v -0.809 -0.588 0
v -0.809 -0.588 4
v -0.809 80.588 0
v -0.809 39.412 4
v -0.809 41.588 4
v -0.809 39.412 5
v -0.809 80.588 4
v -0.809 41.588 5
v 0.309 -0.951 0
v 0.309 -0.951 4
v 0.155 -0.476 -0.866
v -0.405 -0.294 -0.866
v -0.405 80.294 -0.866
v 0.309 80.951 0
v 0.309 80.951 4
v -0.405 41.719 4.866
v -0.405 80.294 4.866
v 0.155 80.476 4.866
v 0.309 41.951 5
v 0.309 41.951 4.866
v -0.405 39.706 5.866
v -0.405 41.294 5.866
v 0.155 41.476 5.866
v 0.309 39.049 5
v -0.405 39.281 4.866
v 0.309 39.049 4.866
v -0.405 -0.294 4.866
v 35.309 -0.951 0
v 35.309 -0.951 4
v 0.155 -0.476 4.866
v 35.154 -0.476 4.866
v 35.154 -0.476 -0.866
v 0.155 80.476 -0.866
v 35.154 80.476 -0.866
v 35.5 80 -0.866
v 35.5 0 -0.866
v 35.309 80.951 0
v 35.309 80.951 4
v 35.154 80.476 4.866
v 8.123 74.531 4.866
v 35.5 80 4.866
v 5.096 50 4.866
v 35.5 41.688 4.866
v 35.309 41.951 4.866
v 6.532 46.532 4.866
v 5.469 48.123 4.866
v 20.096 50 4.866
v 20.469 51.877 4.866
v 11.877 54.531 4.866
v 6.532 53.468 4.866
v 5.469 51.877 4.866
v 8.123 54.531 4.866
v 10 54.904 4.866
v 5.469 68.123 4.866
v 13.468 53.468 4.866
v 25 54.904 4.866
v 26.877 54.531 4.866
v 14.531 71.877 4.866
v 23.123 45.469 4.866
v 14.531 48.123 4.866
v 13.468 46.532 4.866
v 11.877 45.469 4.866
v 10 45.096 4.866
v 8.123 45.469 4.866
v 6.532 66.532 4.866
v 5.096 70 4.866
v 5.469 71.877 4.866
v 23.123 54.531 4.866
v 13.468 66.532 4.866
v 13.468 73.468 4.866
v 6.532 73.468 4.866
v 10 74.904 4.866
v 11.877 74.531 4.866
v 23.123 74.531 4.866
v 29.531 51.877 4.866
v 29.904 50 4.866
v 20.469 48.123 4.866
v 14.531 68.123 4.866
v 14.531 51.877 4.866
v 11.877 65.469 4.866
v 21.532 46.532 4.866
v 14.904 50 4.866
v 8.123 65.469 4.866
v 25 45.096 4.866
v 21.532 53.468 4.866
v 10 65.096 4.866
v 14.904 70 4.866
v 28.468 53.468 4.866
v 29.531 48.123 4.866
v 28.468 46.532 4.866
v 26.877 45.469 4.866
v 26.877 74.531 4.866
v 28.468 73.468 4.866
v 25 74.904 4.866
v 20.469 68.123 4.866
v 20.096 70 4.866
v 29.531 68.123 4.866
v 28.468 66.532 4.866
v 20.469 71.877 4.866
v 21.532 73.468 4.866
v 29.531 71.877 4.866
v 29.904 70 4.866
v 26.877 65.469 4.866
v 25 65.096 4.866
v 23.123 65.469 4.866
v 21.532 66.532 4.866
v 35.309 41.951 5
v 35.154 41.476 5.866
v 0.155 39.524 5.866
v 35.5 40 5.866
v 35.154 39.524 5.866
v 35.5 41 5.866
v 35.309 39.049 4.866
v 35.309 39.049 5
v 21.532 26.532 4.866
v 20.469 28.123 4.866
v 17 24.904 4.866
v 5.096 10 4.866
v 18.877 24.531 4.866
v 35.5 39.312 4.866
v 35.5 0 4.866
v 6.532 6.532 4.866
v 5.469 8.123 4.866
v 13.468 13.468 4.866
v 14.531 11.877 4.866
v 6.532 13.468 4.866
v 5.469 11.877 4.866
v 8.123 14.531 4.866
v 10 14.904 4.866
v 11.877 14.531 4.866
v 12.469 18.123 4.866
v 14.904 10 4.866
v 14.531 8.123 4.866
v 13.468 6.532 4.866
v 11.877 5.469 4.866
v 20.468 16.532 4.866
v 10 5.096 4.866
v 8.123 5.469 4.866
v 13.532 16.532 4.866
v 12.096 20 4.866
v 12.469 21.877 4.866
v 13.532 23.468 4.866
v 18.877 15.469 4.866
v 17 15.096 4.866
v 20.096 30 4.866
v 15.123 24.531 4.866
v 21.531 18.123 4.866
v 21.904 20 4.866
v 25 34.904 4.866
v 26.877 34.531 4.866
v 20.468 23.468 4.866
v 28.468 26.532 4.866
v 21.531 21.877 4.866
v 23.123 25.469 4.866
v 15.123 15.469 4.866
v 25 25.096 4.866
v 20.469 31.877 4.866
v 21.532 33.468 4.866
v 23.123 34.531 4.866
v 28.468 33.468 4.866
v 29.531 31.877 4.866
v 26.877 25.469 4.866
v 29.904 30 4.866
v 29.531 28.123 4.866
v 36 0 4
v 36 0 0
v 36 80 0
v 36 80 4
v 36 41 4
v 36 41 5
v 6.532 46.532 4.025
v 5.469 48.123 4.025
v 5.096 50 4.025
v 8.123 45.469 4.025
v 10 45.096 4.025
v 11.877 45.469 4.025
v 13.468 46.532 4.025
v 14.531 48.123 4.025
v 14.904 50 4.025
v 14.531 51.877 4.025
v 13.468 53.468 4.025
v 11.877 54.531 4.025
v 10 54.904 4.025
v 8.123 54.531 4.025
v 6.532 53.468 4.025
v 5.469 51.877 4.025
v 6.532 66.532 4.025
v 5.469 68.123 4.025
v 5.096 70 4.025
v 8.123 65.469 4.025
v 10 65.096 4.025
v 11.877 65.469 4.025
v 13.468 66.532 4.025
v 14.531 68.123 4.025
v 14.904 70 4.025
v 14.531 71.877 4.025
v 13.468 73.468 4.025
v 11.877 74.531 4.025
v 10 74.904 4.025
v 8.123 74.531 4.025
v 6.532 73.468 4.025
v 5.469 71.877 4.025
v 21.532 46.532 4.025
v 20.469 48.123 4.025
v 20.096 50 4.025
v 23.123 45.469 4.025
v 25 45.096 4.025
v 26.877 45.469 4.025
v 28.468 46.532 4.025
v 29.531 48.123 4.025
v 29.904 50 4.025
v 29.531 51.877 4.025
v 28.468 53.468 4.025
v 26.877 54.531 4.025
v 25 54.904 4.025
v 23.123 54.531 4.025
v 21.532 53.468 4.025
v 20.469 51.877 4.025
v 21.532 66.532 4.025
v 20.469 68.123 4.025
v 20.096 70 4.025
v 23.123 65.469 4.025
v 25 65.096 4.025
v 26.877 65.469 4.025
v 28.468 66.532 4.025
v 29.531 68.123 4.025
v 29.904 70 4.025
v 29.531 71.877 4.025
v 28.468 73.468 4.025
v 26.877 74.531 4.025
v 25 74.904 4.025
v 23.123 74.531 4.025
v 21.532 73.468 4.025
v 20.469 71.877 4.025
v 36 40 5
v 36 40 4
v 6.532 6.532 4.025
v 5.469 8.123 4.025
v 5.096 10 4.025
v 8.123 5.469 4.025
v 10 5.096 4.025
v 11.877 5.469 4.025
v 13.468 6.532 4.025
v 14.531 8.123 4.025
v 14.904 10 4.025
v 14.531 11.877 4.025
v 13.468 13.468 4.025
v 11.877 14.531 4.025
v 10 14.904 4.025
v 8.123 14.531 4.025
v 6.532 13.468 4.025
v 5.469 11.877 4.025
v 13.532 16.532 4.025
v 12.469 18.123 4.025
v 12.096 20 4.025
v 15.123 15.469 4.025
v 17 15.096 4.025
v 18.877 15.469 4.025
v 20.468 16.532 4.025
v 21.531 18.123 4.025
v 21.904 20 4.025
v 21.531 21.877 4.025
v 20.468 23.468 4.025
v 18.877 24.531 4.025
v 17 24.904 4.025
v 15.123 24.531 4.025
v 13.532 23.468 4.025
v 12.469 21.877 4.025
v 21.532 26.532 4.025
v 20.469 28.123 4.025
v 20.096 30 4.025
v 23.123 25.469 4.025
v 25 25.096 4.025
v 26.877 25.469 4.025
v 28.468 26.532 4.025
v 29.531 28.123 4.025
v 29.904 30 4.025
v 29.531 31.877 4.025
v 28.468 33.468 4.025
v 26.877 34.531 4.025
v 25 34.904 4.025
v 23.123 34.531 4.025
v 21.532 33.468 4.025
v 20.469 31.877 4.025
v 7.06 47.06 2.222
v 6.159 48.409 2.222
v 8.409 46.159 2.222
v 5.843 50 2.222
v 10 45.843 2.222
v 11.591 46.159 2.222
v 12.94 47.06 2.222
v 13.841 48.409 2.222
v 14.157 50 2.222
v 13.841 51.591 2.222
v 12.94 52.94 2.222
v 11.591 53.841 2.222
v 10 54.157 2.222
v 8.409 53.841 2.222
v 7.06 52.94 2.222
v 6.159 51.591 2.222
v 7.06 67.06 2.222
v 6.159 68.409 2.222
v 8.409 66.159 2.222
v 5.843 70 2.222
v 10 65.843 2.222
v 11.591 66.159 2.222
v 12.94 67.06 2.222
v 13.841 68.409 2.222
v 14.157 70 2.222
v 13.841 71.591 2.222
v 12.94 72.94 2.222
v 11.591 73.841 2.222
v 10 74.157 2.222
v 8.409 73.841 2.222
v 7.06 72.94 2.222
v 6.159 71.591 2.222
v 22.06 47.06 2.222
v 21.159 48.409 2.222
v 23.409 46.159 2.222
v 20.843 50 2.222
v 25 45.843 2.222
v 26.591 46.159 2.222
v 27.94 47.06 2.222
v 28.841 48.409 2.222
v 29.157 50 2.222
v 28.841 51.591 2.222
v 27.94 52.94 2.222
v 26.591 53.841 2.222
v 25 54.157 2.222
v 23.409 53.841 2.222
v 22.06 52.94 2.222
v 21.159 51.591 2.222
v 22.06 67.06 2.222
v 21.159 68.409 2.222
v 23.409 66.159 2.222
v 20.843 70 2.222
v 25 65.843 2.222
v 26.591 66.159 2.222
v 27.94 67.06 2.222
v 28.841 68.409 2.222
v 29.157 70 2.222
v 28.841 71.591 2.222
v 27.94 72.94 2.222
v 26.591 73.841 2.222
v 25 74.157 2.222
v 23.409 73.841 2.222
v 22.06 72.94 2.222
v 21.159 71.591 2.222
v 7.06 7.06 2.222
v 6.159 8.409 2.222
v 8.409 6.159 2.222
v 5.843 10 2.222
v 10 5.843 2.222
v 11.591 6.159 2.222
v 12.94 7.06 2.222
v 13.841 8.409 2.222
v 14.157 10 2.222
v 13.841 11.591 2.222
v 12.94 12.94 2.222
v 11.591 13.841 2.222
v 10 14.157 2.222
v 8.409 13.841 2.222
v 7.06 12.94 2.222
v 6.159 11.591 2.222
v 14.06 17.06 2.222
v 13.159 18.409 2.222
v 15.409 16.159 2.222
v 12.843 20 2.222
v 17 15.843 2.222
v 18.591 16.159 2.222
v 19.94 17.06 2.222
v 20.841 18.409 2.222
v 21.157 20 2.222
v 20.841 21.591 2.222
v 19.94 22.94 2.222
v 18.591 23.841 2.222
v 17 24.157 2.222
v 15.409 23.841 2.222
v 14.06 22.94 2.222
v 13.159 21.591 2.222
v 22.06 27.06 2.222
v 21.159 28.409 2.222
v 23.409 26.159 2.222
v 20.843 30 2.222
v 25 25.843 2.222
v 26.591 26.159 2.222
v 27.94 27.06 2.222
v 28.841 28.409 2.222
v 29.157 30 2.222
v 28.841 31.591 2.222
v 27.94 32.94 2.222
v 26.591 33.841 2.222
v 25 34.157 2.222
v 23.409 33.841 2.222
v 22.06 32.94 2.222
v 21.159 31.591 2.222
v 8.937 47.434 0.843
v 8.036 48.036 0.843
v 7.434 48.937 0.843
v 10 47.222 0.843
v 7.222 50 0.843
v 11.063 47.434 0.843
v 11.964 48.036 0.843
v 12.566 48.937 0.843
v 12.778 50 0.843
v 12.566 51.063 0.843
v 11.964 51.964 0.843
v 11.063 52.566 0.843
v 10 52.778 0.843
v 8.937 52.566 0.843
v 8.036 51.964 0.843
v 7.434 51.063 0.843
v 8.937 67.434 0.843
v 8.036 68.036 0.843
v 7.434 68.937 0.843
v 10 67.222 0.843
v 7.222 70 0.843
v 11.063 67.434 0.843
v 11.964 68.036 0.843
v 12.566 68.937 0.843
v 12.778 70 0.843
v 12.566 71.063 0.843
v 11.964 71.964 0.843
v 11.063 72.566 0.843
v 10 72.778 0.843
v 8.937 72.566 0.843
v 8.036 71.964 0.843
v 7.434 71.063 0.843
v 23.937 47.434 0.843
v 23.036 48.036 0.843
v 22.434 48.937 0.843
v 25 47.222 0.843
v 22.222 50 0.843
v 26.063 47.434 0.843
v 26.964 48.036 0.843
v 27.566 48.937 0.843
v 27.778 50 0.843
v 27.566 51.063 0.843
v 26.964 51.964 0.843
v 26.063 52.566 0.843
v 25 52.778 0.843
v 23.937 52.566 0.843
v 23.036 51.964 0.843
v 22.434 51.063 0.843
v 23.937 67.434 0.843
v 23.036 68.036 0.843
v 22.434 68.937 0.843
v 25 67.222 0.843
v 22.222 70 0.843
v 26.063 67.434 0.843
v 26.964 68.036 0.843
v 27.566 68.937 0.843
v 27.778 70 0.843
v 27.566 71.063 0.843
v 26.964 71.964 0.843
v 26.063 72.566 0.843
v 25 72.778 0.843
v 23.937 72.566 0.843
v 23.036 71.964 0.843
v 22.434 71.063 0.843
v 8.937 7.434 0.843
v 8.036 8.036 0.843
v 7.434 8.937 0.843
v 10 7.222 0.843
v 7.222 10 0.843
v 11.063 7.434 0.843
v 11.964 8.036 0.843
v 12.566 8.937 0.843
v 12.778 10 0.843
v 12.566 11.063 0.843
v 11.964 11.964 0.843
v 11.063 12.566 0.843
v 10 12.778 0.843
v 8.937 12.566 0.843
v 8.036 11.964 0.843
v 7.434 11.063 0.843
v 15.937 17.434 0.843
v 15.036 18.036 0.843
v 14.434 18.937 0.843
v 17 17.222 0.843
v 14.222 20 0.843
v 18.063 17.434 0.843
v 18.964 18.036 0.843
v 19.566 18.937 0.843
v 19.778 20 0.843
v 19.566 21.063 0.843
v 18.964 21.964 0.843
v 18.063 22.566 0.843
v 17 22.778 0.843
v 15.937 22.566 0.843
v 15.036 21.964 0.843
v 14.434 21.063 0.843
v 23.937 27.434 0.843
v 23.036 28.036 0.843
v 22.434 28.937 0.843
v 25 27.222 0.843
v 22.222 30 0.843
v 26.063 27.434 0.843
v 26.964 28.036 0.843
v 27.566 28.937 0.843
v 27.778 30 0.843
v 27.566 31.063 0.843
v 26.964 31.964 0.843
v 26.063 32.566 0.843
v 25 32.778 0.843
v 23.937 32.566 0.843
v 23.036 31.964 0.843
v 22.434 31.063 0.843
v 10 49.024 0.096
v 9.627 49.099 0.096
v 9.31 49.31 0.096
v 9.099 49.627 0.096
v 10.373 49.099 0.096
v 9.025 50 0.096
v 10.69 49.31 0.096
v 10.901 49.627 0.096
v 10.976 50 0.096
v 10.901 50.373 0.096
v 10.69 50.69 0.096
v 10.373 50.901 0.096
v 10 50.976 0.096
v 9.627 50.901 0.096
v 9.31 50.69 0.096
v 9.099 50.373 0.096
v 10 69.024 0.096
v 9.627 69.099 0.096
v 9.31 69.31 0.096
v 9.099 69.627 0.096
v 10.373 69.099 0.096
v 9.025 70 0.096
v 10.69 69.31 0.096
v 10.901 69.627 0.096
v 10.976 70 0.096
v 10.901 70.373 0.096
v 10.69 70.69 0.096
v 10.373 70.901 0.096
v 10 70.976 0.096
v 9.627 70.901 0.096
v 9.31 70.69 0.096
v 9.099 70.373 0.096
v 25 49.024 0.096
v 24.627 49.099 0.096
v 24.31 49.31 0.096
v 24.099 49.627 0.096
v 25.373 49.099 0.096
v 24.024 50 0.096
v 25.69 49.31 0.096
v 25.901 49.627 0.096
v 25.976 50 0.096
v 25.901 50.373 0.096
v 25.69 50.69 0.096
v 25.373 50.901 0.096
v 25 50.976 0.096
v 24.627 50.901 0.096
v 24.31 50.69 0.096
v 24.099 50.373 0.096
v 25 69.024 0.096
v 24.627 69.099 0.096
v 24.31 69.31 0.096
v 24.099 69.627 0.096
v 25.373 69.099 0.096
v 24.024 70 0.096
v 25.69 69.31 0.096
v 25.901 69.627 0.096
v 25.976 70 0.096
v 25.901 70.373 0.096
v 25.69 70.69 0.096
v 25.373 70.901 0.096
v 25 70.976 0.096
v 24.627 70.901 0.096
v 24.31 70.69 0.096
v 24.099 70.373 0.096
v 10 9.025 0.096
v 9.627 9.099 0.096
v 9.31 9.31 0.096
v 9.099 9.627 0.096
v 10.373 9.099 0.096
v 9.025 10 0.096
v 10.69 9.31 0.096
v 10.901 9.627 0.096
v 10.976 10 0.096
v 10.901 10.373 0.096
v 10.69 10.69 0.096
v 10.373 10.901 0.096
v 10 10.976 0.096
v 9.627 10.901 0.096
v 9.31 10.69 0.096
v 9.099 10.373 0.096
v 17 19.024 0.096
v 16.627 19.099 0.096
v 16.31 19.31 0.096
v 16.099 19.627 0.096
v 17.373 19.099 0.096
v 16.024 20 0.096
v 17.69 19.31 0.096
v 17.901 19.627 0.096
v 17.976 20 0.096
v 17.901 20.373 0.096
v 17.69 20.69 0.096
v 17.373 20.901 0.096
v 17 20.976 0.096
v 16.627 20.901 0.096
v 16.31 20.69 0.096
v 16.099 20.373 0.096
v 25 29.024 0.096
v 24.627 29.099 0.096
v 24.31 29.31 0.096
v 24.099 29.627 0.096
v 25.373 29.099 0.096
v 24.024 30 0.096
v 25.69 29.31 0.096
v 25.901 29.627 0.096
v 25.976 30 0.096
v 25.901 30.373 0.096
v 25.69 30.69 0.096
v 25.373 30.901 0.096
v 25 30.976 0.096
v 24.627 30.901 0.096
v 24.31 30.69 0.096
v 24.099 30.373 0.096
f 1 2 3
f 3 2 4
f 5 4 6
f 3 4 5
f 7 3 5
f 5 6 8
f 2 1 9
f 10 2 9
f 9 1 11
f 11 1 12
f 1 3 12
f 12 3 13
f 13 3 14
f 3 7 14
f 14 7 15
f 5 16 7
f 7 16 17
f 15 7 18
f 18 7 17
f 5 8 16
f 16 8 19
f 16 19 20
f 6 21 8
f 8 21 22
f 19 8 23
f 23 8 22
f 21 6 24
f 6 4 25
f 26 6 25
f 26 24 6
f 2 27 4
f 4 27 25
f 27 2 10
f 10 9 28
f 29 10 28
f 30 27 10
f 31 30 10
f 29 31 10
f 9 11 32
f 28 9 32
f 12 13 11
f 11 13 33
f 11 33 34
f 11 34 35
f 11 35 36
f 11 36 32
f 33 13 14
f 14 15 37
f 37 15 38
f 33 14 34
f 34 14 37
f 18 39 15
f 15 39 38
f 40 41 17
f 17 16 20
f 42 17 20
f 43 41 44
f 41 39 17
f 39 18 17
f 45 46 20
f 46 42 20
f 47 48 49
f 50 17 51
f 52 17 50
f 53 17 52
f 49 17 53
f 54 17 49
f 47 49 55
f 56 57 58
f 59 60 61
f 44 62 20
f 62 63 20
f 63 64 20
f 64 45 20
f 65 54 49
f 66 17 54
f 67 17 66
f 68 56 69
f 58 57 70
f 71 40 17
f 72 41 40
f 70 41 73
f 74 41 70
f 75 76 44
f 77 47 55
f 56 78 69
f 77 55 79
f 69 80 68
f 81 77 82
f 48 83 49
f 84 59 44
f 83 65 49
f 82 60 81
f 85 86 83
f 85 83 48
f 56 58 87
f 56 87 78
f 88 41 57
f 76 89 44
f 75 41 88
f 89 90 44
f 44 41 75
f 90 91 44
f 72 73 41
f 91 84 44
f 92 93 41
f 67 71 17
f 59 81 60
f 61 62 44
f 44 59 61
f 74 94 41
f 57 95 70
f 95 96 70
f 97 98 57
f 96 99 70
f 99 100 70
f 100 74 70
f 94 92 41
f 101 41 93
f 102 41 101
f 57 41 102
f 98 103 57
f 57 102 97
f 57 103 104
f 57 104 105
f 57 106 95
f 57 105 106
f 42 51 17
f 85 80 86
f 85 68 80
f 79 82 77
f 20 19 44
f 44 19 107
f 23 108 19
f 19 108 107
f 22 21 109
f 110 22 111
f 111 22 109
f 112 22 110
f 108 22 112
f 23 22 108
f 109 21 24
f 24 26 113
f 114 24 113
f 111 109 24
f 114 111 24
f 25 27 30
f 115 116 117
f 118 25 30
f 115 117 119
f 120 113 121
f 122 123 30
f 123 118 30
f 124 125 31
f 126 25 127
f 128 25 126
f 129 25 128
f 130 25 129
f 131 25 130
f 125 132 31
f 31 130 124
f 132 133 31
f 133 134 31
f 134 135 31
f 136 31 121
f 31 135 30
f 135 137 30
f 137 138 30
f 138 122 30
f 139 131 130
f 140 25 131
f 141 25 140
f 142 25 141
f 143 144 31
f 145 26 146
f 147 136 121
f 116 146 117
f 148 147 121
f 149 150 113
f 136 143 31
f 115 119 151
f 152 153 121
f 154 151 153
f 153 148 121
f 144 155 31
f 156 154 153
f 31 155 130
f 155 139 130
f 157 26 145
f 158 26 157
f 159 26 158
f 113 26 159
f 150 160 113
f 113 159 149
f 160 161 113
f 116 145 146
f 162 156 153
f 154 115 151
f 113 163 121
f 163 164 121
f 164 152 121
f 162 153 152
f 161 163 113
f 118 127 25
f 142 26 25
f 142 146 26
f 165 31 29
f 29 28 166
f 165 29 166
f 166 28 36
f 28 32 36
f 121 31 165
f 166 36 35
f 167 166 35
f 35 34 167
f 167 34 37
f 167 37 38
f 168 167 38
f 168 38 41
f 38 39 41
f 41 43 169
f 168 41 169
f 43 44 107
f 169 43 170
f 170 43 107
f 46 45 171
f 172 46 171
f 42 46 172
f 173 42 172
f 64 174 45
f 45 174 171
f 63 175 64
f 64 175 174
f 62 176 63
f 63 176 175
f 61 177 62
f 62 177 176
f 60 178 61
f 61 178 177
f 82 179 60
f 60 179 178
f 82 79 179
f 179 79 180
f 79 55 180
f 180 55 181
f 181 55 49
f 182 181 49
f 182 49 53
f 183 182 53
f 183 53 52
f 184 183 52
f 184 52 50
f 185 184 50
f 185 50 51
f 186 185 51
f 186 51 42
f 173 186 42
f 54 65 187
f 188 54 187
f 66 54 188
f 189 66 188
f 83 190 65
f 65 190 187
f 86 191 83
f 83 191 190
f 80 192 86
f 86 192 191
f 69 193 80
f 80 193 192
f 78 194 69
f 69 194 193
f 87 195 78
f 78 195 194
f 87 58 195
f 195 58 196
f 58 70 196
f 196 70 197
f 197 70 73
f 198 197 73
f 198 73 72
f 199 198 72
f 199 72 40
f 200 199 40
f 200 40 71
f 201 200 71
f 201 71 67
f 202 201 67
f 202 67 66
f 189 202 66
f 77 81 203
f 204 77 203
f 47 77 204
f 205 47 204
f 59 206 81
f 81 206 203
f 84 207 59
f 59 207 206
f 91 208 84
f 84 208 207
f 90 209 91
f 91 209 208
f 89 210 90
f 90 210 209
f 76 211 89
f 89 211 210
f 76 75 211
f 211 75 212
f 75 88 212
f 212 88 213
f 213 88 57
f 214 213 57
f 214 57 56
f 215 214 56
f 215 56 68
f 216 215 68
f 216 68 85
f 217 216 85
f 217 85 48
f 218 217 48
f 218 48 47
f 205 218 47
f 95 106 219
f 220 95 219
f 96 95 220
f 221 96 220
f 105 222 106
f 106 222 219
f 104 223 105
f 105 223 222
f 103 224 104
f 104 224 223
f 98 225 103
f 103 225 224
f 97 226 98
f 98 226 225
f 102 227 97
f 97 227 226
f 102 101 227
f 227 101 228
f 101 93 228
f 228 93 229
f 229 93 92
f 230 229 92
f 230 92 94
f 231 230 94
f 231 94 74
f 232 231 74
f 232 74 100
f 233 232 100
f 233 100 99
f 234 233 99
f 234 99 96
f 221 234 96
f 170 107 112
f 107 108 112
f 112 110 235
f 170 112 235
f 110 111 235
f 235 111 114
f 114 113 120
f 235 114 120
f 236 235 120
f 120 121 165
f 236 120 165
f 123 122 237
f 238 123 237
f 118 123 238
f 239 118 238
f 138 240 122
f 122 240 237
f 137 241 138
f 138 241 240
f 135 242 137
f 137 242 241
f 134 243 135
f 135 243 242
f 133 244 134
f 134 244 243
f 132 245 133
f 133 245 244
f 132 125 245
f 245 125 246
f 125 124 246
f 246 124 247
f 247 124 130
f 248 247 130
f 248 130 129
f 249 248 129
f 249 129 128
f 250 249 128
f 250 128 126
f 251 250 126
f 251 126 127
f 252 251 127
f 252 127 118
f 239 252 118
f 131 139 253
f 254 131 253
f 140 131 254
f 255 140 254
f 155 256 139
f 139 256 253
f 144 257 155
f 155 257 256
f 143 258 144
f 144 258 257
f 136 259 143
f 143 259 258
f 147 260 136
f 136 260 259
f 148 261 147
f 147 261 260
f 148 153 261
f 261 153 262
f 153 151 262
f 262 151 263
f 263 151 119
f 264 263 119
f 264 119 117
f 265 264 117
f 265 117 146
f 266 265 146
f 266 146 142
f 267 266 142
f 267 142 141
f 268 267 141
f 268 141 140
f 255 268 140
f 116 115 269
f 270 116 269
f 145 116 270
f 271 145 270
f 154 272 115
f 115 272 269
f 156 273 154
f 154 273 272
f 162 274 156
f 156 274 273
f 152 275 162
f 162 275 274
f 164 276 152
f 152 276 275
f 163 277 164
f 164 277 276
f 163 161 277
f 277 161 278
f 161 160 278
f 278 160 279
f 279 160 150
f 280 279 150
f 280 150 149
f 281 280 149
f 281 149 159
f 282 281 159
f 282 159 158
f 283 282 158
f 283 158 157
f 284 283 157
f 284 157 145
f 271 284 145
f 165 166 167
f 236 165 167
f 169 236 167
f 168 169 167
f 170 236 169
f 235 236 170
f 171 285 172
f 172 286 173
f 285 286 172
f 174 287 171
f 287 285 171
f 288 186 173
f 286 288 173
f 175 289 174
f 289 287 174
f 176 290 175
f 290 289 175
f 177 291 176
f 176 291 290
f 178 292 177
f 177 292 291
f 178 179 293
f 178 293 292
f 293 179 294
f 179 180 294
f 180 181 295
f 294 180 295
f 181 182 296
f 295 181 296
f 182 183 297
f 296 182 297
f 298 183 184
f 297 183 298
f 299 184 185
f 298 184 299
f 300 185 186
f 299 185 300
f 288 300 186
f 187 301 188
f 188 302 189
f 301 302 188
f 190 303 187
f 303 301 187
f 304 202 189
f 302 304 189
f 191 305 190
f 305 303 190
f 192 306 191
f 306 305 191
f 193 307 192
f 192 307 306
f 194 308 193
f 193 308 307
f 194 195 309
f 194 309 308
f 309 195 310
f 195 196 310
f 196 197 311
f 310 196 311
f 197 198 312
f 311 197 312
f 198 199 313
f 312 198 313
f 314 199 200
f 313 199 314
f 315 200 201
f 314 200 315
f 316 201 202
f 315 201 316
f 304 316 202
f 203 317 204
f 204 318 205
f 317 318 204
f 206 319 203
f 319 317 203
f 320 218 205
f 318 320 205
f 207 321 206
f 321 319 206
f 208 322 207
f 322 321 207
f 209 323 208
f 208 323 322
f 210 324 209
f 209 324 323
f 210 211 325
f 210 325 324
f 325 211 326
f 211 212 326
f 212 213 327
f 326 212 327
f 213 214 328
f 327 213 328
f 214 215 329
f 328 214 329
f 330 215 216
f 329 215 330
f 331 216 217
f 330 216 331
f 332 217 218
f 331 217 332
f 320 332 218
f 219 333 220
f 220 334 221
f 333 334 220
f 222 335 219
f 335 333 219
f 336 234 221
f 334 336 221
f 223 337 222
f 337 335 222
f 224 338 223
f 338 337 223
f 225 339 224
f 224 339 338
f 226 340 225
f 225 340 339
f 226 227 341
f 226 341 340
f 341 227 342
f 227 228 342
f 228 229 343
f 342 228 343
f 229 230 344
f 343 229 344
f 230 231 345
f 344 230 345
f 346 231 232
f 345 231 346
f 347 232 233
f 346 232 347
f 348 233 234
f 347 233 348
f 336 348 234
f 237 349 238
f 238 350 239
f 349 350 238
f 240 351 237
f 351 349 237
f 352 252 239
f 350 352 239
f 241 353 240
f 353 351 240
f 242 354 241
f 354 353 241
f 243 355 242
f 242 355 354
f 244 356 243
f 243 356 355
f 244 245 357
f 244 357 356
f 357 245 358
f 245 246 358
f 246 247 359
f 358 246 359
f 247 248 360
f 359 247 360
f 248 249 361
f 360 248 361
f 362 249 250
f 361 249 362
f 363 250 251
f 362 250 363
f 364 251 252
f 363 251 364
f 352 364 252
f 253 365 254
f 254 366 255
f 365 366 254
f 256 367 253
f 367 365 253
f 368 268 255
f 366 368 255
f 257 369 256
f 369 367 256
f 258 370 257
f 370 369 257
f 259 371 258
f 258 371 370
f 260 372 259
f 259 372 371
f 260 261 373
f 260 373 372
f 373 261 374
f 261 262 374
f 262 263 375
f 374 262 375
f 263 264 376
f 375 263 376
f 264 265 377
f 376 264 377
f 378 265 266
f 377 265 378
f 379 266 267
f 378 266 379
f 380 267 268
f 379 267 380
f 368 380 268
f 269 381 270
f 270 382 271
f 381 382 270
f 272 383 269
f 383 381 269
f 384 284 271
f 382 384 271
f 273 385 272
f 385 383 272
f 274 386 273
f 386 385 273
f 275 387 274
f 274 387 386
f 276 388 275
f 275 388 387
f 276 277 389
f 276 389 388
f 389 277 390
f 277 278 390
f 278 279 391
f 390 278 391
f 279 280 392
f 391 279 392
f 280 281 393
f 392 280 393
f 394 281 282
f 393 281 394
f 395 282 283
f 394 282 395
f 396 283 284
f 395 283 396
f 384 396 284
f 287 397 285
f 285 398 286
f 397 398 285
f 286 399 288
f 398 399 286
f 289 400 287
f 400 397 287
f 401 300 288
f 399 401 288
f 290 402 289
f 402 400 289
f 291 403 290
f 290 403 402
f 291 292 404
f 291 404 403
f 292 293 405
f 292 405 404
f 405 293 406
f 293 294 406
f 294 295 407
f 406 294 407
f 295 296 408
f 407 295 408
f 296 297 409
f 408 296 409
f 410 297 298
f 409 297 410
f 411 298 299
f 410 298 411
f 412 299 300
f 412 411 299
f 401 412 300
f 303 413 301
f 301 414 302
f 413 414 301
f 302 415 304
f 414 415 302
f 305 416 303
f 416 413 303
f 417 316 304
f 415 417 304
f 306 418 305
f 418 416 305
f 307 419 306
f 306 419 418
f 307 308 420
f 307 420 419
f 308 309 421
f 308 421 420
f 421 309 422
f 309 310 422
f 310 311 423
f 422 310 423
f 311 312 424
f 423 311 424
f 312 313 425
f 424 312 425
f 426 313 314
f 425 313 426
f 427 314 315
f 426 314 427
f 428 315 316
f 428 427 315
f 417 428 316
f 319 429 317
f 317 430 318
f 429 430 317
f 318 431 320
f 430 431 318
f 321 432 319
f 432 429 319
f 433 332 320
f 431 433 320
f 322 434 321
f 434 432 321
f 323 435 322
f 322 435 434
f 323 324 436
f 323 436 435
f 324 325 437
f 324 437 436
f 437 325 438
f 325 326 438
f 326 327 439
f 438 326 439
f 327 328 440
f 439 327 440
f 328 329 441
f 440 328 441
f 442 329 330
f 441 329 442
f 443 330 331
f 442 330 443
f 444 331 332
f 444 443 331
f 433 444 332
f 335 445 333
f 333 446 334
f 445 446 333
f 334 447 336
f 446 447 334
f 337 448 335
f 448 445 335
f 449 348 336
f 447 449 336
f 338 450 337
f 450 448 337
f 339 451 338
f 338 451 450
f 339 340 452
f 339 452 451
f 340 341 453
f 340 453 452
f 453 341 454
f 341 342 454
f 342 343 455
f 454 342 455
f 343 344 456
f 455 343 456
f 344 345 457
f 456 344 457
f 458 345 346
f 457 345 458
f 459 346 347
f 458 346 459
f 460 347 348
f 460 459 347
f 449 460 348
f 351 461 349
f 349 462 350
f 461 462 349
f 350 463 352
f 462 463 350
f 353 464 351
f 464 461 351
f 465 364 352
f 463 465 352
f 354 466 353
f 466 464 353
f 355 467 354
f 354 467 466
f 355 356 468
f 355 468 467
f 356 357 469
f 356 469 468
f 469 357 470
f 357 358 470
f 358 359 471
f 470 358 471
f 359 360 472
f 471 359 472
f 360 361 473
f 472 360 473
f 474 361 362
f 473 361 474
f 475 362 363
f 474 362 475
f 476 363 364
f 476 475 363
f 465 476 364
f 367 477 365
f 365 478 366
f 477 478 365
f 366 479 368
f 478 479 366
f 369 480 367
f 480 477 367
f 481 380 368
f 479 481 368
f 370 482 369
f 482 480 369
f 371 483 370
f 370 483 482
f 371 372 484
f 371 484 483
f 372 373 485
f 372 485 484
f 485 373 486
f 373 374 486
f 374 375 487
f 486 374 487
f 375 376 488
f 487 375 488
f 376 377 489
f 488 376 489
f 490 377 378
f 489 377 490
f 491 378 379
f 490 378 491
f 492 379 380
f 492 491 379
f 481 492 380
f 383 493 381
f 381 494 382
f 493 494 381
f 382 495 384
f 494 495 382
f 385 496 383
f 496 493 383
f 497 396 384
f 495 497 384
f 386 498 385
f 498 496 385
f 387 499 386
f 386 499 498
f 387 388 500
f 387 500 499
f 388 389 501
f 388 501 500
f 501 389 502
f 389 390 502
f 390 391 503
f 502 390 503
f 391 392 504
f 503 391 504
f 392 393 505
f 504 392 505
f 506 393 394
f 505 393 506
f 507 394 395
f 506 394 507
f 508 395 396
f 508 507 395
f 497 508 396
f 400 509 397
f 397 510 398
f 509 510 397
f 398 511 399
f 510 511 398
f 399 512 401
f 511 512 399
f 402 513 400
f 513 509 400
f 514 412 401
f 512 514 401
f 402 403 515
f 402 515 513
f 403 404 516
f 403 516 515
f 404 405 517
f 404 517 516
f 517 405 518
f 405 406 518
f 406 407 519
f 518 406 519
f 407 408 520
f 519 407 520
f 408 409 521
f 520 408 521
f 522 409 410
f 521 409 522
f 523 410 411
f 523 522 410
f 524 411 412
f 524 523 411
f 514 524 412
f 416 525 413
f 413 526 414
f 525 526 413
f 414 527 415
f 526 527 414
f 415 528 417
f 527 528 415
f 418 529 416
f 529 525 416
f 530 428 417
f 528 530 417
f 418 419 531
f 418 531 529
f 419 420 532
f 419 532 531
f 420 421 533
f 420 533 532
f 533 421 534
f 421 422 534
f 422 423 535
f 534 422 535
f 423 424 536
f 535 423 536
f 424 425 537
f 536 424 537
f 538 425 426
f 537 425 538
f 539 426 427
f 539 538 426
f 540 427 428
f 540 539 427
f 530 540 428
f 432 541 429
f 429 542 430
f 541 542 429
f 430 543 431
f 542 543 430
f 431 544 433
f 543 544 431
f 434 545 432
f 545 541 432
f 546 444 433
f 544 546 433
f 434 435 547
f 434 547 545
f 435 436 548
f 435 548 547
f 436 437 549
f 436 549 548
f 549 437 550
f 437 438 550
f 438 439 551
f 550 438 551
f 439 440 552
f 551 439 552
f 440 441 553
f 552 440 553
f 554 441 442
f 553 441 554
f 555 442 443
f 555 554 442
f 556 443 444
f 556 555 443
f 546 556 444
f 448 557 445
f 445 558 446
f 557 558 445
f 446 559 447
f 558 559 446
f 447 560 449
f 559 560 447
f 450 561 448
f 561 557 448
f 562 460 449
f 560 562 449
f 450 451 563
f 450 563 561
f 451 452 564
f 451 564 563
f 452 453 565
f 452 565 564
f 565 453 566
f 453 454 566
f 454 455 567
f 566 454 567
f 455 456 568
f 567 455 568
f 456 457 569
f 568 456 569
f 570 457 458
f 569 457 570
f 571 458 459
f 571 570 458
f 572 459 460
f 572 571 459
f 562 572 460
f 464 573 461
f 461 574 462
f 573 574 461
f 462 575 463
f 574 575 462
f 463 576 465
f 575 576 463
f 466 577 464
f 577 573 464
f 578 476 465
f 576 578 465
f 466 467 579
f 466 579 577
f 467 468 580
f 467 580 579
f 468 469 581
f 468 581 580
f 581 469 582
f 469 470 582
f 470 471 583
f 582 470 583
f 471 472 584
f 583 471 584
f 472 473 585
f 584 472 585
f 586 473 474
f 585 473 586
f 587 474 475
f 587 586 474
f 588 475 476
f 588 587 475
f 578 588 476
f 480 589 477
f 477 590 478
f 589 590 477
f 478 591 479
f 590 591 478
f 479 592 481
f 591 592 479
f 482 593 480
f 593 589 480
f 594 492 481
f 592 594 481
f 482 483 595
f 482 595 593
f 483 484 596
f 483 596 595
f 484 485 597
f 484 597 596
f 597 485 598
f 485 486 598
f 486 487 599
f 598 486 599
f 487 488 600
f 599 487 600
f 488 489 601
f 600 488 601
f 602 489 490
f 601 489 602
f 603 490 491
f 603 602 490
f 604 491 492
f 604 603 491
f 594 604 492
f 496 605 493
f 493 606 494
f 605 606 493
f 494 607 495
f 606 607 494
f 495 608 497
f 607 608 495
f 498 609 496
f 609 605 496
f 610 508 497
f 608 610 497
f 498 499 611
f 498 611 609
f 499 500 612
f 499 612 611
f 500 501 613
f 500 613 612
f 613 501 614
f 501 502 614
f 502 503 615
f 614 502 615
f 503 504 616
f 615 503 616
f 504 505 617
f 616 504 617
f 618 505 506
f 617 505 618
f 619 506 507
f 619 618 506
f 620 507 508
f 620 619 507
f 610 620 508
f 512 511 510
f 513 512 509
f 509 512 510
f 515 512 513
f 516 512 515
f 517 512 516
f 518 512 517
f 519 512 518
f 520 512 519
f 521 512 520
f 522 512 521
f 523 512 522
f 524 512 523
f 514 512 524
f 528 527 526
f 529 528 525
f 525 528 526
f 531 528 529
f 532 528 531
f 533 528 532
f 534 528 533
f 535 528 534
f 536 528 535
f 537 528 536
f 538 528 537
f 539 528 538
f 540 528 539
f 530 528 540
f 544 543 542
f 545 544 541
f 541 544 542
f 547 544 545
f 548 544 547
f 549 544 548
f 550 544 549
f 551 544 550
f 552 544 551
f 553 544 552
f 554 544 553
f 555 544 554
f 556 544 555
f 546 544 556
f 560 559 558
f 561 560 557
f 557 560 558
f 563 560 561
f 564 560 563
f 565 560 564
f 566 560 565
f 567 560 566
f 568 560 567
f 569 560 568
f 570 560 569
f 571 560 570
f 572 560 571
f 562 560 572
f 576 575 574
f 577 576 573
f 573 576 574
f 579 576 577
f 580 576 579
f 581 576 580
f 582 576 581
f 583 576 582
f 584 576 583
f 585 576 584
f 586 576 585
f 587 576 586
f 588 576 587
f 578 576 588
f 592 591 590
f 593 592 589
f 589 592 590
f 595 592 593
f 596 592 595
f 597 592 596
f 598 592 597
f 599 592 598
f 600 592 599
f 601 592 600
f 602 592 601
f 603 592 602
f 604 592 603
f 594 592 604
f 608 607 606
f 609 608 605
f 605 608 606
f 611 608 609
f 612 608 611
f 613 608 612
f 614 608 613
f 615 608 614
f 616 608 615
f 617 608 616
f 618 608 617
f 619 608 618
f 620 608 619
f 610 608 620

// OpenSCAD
// Loguncov Maxim 13.12.13


//$fn=128;


translate([0,40,0])
minkowski()
{cube([35,1,5]);
sphere(1);
}

difference() {

//основа
minkowski()
{cube([35,80,4]);
sphere(1);
}

//отверстия
translate([10,10,5])sphere(5);
translate([25,30,5])sphere(5);
translate([17,20,5])sphere(5);

translate([10,70,5])sphere(5);
translate([25,50,5])sphere(5);
translate([25,70,5])sphere(5);
translate([10,50,5])sphere(5);
}
